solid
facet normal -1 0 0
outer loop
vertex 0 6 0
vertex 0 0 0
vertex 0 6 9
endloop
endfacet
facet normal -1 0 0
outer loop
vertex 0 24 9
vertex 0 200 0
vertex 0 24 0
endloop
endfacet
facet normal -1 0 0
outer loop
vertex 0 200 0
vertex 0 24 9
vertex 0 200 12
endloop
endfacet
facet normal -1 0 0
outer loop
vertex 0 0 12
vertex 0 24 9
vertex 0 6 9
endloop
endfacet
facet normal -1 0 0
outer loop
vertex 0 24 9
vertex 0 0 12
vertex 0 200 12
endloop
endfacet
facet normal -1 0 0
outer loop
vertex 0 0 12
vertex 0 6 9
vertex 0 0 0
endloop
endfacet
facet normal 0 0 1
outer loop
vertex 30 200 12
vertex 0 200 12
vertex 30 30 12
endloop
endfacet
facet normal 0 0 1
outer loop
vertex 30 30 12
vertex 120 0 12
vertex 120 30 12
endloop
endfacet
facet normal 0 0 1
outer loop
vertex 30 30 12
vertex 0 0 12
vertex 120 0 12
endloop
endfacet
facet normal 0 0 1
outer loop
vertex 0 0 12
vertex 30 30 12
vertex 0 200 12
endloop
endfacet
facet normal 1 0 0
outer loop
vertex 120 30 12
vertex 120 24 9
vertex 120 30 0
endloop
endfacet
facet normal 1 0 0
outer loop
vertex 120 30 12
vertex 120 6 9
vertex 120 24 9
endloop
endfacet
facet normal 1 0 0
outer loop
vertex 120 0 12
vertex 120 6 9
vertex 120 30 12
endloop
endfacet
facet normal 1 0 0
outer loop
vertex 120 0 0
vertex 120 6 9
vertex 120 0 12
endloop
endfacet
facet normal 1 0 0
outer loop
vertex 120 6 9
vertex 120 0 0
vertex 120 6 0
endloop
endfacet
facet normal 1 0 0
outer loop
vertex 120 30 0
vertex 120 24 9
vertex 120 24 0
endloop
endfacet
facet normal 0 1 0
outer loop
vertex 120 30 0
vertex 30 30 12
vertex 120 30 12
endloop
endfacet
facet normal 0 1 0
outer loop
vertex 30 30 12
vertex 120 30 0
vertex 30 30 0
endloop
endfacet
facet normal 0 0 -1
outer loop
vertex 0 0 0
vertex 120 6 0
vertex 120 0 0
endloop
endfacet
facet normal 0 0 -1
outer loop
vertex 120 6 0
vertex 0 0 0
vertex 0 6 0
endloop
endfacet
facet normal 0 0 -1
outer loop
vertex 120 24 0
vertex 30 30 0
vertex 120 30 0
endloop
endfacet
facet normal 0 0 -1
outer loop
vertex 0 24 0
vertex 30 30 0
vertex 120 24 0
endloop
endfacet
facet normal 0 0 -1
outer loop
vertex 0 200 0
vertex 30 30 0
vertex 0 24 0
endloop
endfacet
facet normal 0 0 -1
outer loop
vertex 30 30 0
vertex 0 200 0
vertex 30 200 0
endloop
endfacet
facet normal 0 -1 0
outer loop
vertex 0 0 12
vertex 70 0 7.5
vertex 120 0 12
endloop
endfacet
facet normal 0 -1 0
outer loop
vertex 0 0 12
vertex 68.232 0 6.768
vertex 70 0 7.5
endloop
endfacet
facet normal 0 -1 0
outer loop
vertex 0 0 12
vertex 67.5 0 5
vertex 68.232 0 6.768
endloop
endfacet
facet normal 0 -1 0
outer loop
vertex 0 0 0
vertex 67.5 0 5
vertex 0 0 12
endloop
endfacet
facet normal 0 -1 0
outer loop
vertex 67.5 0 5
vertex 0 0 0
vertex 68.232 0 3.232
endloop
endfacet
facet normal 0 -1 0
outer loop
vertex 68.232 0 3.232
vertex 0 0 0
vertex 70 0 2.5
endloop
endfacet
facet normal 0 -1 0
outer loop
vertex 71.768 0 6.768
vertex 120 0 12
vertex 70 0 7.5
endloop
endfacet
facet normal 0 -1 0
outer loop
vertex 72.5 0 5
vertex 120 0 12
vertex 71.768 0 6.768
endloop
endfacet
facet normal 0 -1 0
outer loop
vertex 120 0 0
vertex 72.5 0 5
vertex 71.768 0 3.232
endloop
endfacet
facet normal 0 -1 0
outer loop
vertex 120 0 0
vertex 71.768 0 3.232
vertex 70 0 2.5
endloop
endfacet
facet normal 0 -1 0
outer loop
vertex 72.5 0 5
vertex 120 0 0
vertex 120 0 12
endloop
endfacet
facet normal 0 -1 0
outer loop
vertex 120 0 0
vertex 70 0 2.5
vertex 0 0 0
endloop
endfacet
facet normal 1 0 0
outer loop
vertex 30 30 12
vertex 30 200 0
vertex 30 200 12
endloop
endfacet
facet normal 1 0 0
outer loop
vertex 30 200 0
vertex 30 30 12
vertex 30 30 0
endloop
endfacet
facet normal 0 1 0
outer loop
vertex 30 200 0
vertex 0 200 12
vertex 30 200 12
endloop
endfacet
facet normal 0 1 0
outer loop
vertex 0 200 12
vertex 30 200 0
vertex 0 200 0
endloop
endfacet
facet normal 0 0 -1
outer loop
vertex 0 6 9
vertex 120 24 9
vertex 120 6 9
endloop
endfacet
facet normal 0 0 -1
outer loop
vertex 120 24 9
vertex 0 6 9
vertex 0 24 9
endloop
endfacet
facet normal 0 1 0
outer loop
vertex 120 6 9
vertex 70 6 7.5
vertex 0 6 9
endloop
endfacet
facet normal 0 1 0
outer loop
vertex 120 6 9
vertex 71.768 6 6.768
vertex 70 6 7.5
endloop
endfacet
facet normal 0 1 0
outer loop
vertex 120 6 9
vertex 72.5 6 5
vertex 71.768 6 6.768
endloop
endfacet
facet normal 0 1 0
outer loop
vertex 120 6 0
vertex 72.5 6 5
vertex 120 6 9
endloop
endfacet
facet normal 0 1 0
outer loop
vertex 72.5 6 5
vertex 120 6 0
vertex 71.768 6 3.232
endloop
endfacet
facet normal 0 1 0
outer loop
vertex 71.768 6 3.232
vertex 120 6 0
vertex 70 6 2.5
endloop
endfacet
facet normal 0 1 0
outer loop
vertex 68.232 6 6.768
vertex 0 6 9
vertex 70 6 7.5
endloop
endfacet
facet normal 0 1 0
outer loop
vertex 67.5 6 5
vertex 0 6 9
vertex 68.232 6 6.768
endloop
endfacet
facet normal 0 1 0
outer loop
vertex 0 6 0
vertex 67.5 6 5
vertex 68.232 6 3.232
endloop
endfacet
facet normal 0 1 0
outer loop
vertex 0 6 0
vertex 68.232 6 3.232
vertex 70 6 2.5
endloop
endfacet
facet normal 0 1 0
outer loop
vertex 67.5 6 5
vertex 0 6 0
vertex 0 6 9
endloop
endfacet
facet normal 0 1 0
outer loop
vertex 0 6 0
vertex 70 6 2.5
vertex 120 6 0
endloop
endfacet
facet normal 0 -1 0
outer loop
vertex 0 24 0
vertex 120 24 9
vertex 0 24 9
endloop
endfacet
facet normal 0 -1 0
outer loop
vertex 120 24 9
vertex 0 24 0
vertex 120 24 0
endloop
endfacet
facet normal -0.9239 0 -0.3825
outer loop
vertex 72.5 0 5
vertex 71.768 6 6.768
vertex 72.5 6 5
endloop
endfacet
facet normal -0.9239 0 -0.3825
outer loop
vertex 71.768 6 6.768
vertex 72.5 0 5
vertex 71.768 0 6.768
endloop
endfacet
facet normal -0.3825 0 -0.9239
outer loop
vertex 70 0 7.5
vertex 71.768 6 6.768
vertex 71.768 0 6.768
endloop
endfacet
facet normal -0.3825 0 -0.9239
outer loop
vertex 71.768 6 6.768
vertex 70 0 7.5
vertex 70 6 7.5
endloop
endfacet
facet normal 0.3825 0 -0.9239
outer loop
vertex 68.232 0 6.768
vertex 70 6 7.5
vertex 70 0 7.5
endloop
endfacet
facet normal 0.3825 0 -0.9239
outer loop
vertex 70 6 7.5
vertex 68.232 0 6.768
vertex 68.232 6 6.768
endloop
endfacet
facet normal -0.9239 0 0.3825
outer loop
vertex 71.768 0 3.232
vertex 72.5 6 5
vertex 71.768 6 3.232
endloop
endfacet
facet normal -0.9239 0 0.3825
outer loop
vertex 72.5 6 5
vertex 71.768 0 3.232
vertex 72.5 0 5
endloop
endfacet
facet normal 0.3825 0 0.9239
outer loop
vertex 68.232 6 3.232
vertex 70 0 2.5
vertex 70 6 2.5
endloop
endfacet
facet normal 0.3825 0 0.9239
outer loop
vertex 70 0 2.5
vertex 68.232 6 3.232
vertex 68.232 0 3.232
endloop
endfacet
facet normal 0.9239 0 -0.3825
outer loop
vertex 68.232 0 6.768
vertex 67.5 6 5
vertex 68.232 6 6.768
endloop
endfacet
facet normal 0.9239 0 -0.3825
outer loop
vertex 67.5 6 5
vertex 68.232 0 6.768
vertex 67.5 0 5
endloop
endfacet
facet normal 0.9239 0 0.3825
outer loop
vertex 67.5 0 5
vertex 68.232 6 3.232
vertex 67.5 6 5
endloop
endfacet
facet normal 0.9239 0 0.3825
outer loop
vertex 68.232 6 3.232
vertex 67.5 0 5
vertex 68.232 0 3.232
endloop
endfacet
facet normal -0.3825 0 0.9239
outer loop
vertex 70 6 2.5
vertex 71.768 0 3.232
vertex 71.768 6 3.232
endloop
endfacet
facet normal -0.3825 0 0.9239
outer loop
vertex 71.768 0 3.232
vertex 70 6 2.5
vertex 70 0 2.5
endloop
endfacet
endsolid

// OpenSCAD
// Papierschneidelineal

Lineal();


module Lineal() {
    difference() {
        union() {
        
            cube([120,30,12]);
            cube([30,200,12]);
        }
        translate([-2.5,6,-1])
        cube([125,18,10]);
        translate([70,7,5])
        rotate([90,0,0])
        cylinder(d=5,h=8);
    }
}
